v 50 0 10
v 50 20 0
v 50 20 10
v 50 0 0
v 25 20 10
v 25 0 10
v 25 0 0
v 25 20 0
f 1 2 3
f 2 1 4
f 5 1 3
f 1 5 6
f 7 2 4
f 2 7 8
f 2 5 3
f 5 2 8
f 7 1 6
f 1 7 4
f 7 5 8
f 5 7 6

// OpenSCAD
// Saw parameters
saw_width = 50;
saw_height = 20;
saw_depth = 10;
blade_angle = 30; // Degrees from vertical
blade_width = 15;
blade_height = 5;
handle_width = 25;
handle_height = 30;
handle_depth = 20;

module saw() {
  difference() {
    cube([saw_width, saw_height, saw_depth]);
    
    // Cut out the blade
    translate([0, saw_height - blade_height, 0])
    rotate([0, 0, blade_angle])
    cube([blade_width, blade_height, blade_width]);

    // Cut out the handle
    translate([0, saw_height - handle_height, 0])
    cube([handle_width, handle_height, handle_depth]);
  }
}

saw();
